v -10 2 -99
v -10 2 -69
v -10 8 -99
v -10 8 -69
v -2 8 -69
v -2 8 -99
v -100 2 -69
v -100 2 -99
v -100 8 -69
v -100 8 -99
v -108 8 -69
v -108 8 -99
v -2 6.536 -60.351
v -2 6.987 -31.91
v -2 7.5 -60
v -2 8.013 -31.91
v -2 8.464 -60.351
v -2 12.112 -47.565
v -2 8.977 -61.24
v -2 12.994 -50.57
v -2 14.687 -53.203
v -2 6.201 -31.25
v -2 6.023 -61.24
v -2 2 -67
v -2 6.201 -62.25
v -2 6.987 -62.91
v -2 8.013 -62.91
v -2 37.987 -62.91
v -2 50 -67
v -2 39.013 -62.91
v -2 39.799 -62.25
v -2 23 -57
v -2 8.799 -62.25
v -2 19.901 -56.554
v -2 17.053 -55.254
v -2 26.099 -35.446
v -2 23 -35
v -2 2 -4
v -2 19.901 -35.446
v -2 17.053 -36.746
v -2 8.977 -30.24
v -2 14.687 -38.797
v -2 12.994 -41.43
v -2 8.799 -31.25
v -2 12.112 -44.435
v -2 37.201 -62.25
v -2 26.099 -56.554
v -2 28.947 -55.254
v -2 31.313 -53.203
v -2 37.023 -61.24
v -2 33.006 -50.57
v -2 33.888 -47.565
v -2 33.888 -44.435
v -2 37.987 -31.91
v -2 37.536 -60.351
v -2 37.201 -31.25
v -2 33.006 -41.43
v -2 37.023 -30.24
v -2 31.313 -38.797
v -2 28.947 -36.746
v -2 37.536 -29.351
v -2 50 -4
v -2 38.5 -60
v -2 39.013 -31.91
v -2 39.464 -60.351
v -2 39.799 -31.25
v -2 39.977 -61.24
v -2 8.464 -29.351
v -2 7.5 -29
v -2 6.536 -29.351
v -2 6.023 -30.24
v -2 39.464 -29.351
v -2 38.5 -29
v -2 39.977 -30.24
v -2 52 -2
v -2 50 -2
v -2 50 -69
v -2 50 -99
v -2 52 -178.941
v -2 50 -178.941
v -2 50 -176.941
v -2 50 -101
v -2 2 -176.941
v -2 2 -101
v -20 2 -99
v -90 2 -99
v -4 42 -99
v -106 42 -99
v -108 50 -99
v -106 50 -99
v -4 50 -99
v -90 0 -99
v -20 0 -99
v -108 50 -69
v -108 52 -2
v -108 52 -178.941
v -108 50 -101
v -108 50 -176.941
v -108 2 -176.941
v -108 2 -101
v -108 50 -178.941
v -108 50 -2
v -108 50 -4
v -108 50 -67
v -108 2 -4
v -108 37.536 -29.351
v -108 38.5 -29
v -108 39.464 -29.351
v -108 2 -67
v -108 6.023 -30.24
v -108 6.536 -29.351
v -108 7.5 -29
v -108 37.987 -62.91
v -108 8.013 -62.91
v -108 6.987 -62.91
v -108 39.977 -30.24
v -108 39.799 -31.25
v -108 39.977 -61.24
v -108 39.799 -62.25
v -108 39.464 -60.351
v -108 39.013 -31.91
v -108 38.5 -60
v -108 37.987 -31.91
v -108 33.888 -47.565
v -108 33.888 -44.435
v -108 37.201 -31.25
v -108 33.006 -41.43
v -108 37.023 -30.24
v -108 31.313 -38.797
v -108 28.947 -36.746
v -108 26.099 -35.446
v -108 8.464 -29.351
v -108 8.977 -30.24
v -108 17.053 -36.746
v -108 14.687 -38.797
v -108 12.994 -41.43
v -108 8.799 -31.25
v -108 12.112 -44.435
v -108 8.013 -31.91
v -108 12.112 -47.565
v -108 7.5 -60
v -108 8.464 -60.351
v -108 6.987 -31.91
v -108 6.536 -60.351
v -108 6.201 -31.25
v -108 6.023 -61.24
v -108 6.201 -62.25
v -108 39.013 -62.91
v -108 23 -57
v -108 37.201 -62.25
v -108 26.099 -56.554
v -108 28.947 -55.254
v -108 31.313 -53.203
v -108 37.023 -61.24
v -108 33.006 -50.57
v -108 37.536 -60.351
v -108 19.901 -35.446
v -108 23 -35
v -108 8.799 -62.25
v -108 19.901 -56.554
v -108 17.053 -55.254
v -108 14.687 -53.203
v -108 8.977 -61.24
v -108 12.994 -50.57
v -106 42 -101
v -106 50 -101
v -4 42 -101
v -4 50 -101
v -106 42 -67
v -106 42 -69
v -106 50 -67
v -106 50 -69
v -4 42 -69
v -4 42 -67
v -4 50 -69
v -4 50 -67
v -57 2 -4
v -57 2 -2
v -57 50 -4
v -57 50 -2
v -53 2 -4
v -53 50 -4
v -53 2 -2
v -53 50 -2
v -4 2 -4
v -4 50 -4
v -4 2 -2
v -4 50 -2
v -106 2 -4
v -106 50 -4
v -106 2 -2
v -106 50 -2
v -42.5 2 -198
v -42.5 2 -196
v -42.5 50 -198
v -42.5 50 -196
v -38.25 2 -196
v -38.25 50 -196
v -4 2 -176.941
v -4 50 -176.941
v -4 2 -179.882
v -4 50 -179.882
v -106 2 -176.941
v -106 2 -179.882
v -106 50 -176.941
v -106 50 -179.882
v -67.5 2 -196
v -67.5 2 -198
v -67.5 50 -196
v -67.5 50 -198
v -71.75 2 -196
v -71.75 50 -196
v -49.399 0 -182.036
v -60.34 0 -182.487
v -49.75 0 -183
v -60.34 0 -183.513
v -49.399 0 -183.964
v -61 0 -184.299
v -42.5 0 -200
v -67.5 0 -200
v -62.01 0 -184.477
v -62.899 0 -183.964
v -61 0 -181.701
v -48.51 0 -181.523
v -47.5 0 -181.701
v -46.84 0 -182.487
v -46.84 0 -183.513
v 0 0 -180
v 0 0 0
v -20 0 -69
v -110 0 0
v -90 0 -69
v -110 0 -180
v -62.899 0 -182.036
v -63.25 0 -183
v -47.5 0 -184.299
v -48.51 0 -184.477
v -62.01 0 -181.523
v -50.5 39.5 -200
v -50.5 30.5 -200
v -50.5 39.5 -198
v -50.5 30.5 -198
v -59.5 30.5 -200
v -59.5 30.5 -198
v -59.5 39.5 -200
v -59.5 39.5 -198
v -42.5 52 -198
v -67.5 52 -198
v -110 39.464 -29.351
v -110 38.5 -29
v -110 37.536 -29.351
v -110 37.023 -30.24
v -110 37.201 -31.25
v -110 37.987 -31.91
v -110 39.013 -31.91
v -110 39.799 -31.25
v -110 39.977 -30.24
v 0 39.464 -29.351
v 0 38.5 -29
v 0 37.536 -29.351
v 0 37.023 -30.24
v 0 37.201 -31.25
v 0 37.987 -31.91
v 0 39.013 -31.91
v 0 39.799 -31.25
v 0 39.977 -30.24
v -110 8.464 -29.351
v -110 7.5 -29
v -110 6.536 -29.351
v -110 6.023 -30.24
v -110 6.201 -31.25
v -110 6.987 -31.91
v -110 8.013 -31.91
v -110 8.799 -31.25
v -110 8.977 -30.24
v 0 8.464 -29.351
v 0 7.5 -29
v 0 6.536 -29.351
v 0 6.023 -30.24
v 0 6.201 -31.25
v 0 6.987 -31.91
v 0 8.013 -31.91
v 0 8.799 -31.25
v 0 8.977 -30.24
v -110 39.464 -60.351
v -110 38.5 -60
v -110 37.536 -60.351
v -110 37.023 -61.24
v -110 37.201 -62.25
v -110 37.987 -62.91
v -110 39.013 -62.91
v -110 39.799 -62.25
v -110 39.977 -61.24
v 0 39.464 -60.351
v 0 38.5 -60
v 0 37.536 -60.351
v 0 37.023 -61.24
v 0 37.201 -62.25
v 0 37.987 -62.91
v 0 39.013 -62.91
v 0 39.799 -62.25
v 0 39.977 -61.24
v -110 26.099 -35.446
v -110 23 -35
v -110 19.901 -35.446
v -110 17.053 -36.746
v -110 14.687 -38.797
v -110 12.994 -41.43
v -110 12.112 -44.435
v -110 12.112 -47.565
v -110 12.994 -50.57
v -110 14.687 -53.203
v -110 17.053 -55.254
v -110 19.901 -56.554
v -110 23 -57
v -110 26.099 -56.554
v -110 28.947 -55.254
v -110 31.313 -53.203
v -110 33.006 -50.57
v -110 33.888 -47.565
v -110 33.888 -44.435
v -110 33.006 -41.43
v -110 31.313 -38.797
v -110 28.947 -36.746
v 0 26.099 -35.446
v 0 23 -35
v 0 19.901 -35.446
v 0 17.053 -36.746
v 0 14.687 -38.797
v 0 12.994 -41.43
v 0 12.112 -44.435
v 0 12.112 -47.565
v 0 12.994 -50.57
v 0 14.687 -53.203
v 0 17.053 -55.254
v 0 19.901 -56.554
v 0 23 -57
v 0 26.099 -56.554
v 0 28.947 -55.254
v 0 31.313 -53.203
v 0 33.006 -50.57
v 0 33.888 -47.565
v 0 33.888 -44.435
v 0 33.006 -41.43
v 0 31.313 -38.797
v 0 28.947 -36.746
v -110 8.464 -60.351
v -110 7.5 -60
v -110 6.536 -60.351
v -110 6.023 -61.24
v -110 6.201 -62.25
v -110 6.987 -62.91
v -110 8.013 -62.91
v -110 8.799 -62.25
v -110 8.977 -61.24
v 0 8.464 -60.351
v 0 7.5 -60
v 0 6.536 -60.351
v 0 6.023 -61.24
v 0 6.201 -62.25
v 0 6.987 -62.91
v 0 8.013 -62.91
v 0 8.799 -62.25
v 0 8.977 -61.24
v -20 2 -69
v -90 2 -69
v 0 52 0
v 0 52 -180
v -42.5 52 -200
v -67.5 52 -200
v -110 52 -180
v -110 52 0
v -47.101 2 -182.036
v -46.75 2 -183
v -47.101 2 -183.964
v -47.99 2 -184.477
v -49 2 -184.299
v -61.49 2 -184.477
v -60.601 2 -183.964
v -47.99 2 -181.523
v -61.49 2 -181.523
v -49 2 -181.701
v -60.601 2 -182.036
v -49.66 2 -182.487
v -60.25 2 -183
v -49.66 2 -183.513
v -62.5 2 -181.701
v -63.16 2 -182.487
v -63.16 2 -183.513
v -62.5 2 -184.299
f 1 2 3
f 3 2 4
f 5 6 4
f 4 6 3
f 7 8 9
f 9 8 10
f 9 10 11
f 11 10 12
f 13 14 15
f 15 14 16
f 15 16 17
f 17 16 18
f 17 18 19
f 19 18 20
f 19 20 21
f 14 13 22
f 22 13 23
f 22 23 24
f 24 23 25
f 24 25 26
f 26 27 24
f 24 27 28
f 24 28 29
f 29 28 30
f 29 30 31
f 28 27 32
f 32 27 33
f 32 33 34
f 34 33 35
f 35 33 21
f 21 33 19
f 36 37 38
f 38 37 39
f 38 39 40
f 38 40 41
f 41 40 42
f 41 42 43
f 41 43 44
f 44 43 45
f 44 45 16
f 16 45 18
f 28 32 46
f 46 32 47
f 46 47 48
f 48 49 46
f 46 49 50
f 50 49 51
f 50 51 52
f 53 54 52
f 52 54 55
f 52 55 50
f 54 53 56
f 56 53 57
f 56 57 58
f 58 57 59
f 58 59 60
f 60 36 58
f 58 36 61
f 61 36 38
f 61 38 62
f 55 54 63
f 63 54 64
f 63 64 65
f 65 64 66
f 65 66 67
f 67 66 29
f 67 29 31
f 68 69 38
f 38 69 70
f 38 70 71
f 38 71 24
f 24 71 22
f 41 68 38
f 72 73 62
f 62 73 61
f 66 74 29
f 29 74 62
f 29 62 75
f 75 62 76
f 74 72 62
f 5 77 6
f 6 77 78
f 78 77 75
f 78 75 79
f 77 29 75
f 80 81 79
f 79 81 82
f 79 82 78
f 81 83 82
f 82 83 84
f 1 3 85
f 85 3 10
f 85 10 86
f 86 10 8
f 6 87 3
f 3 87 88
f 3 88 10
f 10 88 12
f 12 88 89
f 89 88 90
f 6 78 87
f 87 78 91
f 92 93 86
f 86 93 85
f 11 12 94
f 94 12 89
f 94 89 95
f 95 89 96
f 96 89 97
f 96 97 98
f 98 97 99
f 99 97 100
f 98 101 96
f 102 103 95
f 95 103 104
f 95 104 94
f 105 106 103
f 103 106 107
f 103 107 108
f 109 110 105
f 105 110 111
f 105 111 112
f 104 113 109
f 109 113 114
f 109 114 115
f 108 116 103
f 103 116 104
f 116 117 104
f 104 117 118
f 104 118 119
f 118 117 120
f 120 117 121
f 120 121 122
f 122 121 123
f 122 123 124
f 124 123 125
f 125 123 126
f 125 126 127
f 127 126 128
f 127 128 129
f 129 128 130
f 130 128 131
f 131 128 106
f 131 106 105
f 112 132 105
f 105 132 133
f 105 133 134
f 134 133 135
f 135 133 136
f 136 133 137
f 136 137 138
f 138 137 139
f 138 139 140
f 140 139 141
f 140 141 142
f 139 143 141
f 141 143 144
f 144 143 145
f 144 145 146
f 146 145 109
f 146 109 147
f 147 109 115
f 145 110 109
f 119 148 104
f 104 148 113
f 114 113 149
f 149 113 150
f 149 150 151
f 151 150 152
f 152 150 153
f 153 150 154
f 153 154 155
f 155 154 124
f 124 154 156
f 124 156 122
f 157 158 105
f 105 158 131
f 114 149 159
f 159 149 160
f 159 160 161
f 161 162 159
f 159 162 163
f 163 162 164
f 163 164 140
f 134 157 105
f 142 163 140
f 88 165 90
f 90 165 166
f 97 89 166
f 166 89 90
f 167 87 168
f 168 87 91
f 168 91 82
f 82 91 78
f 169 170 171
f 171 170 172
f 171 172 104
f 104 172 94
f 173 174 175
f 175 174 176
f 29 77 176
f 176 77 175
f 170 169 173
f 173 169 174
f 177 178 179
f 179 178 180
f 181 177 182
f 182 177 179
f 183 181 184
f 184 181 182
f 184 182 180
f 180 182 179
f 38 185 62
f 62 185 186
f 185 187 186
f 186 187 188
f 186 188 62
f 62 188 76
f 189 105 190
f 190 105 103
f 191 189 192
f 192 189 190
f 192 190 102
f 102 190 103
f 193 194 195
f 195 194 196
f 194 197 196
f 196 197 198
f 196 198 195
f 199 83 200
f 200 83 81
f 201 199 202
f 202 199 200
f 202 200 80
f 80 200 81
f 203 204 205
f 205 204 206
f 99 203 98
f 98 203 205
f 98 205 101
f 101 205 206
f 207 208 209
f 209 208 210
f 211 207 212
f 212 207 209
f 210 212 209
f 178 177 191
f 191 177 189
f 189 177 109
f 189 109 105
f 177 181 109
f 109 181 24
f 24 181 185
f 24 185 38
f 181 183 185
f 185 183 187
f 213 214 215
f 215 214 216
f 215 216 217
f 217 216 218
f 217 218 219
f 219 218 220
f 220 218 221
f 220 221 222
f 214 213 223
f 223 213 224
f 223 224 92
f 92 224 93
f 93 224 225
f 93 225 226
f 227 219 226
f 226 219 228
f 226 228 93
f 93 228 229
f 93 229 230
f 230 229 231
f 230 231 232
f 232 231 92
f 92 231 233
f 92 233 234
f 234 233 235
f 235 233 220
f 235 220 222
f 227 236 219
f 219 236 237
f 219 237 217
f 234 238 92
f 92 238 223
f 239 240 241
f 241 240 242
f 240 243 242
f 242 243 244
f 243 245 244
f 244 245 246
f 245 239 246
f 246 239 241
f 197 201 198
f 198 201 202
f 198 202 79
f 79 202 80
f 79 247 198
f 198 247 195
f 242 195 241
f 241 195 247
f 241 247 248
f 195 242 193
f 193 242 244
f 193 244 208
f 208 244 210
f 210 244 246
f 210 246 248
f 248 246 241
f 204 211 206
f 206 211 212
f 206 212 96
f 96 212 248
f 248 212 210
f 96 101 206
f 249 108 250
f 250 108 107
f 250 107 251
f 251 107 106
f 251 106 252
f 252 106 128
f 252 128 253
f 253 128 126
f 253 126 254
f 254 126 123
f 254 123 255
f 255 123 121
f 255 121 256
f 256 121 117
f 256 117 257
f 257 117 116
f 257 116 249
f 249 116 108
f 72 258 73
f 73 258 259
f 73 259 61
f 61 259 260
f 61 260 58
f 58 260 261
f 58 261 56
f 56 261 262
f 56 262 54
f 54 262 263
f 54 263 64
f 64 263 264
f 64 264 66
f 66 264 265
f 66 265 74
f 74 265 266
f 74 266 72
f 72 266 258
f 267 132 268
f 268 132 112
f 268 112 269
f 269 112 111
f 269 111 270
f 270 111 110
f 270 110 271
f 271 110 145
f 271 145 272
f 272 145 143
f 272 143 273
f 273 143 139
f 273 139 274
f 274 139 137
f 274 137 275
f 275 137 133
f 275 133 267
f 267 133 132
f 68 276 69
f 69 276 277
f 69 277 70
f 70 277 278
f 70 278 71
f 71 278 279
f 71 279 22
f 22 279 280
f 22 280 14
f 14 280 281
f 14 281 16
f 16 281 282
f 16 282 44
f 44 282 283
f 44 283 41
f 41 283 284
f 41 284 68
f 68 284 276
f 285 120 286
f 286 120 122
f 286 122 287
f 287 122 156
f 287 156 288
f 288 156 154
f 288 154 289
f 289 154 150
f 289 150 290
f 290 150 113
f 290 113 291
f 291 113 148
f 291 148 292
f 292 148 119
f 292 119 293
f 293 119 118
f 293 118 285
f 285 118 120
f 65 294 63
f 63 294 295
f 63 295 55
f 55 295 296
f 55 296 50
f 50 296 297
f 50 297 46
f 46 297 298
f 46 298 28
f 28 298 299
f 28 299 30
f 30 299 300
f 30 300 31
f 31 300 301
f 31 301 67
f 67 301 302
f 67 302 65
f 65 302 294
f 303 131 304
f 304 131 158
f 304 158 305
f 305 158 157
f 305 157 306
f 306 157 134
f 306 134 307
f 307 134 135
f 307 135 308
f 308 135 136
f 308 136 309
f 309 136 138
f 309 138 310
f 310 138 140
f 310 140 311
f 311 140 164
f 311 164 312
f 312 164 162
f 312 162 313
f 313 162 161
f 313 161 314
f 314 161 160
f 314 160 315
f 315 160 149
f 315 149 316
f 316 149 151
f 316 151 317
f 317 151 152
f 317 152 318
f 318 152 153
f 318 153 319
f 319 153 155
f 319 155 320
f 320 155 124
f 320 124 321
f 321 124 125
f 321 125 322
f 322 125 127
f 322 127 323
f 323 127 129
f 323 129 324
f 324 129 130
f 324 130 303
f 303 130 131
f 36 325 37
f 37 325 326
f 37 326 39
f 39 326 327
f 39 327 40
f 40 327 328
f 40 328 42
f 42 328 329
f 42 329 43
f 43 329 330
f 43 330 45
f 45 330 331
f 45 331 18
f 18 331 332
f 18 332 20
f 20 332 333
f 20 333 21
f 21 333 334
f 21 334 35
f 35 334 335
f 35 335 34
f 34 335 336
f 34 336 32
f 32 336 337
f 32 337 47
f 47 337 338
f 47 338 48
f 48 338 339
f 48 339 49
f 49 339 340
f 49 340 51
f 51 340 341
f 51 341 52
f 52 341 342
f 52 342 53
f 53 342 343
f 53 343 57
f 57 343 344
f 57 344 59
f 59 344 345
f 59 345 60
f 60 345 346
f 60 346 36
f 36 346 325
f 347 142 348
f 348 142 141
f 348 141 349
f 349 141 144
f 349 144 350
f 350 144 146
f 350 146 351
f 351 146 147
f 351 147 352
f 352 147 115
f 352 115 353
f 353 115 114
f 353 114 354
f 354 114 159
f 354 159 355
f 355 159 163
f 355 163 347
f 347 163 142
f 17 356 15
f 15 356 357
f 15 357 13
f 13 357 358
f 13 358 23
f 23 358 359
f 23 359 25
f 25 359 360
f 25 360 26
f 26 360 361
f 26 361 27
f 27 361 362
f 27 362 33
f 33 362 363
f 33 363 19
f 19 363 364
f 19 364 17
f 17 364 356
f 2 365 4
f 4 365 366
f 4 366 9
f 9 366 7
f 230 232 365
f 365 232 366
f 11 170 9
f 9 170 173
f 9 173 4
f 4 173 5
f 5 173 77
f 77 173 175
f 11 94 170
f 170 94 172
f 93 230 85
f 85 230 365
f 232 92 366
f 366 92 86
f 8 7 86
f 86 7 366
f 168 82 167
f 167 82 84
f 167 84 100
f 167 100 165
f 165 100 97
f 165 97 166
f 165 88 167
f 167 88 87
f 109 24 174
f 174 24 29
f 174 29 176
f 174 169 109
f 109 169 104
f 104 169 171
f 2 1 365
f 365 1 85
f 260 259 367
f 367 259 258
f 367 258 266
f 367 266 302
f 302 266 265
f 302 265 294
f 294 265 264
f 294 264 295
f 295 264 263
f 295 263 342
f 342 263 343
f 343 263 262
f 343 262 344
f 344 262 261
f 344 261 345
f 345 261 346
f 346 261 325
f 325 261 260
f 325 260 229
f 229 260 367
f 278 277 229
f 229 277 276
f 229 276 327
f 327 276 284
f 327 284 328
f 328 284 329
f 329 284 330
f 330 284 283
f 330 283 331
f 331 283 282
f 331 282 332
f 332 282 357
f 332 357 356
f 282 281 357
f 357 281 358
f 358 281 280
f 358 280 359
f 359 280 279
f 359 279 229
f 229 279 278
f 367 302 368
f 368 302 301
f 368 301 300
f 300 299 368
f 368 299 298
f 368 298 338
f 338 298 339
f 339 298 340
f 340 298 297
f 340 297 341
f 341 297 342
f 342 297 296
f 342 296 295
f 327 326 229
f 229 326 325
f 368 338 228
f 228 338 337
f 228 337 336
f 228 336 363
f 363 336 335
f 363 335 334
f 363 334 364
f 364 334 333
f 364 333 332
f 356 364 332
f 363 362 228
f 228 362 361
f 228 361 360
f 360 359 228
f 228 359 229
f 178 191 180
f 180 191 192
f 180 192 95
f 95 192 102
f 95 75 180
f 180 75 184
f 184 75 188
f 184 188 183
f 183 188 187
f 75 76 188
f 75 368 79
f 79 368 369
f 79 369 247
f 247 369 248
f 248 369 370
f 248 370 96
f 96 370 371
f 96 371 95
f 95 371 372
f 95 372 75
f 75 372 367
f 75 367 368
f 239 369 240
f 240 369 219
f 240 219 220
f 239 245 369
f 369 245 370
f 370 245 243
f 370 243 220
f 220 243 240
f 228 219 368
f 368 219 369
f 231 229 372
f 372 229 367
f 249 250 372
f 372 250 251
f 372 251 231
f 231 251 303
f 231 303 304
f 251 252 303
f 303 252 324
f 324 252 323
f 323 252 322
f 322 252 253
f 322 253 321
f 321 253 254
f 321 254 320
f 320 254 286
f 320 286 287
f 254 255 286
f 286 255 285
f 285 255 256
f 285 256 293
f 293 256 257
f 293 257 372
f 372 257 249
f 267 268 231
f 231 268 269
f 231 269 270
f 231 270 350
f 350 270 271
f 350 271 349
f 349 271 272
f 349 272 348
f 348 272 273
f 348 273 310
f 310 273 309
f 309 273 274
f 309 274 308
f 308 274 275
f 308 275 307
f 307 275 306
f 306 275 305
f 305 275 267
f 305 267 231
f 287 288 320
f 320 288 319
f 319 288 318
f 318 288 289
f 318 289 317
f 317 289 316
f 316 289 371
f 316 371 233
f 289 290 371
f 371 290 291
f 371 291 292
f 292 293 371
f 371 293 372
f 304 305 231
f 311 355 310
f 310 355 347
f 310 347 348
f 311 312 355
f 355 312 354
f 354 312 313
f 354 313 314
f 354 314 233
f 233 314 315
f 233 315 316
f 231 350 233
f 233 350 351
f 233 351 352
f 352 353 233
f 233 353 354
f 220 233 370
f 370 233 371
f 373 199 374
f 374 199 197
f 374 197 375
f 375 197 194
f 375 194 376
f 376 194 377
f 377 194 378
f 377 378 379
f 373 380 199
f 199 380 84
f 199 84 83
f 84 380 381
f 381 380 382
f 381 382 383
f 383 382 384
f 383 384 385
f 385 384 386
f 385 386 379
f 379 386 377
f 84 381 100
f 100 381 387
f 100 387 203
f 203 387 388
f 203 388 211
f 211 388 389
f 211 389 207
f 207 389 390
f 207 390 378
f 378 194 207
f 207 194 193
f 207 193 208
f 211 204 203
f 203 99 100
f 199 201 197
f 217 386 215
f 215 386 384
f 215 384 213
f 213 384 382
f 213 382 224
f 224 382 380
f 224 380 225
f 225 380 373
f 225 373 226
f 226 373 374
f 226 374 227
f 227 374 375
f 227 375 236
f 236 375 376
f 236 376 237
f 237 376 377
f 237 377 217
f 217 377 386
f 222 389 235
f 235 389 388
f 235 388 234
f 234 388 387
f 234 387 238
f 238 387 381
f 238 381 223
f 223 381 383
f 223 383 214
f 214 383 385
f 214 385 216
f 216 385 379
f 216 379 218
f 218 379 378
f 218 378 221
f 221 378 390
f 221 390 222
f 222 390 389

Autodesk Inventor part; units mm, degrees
ref_plane "YZ Plane" through (0, 0, 0) normal (1, 0, 0) x (0, 1, 0)
ref_plane "XZ Plane" through (0, 0, 0) normal (0, 1, 0) x (-1, 0, 0)
ref_plane "XY Plane" through (0, 0, 0) normal (0, 0, 1) x (1, 0, 0)
sketch "Sketch1" plane through (0, 0, 0) normal (0, 1, 0) x (-1, 0, 0)
  line L0 (0, 0) -> (110, 0)
  line L1 (110, 0) -> (110, -180)
  line L2 (0, -180) -> (0, 0)
  line L3 (67.5, -200) -> (42.5, -200)
  line L4 (67.5, -200) -> (110, -180)
  line L5 (42.5, -200) -> (0, -180)
  dimension "d2" = 180
  dimension "d38" = 25
extrude "Extrusion1" add sketch "Sketch1" along normal blind 2
sketch "Sketch2" plane through (0, 2, 0) normal (0, 1, 0) x (1, 0, 0)
  line L0 (0, 180) -> (-110, 180) projected
  line L1 (-110, 180) -> (-110, 0) projected
  line L2 (0, 180) -> (-110, 180)
  line L3 (-110, 180) -> (-110, 0)
  line L4 (-110, 0) -> (0, 0)
  line L5 (0, 0) -> (0, 180)
  line L6 (0, 0) -> (0, 180) projected
  line L7 (-110, 0) -> (0, 0) projected
  line L8 (-2, 2) -> (-108, 2)
  line L9 (-108, 2) -> (-108, 178)
  line L10 (-108, 178) -> (-2, 178)
  line L11 (-2, 178) -> (-2, 2)
extrude "Extrusion2" add sketch "Sketch2" along normal blind 50
sketch "Sketch3" plane through (-108, 2, -2) normal (1, 0, 0) x (0, 0, -1)
  line L0 (0, 50) -> (176, 50) projected
  line L1 (65, 40) -> (65, 0)
  line L2 (176, 0) -> (0, 0) projected
  line L3 (67, 40) -> (67, 0)
  line L4 (67, 0) -> (65, 0)
  line L5 (97, 40) -> (97, 0)
  line L6 (97, 0) -> (99, 0)
  line L7 (99, 0) -> (99, 40)
  line L8 (65, 40) -> (67, 40)
  line L9 (99, 40) -> (97, 40)
  point P0 (-2, -2)
  point P1 (67, 0)
extrude "Extrusion3" add sketch "Sketch3" along normal up to next
sketch "Sketch4" plane through (0, 2, 0) normal (0, 1, 0) x (1, 0, 0)
  line L0 (-108, 69) -> (-2, 69) projected
  line L1 (-90, 69) -> (-90, 99)
  line L2 (-108, 99) -> (-2, 99) projected
  line L3 (-2, 69) -> (-2, 99) projected
  line L4 (-20, 69) -> (-20, 99)
  line L5 (-20, 99) -> (-90, 99)
  line L6 (-90, 69) -> (-20, 69)
  point P0 (0, 0)
extrude "Extrusion4" cut sketch "Sketch4" against normal up to next contours L1 L2 L4 L0
sketch "Sketch5" plane through (-108, 2, -178) normal (1, 0, 0) x (0, 0, -1)
  line L0 (-111, 0) -> (-111, 40) projected
  line L1 (-111, 0) -> (-176, 0) projected
  circle A0 centre (-132, 21) radius 11
  circle A1 centre (-147.5, 36.5) radius 1.5
  circle A2 centre (-116.5, 36.5) radius 1.5
  circle A3 centre (-147.5, 36.5) radius 1.5
  circle A4 centre (-147.5, 5.5) radius 1.5
  circle A5 centre (-116.5, 5.5) radius 1.5
  point P0 (-178, -2)
extrude "Extrusion5" cut sketch "Sketch5" along normal through all both and the other way through all
sketch "Sketch6" plane through (-108, 2, -178) normal (0, 0, 1) x (1, 0, 0)
  line L0 (106, 0) -> (106, 50) projected
  line L1 (106, 50) -> (0, 50)
  line L2 (0, 50) -> (0, 0)
  line L3 (0, 0) -> (106, 0)
  line L4 (106, 0) -> (106, 50)
  point P0 (108, -2)
extrude "Extrusion6" cut sketch "Sketch6" against normal up to next
sketch "Sketch7" plane through (0, 2, 0) normal (0, 1, 0) x (1, 0, 0)
  line L0 (-67.5, 200) -> (-110, 180) projected
  line L1 (-110, 180) -> (-67.5, 200)
  line L2 (-67.5, 200) -> (-42.5, 200)
  line L3 (0, 180) -> (-42.5, 200) projected
  line L4 (-42.5, 200) -> (0, 180)
  line L5 (-67.5, 198) -> (-42.5, 198)
  line L6 (-99.9511, 182.7289) -> (-67.5, 198)
  line L7 (-99.9511, 182.7289) -> (-108, 178.9412)
  line L8 (-108, 180) -> (-108, 101) projected
  line L9 (-108, 180) -> (-110, 180)
  line L10 (-21.25, 188) -> (-42.5, 198)
  line L11 (-21.25, 188) -> (-2, 178.9412)
  line L12 (-2, 101) -> (-2, 180) projected
  line L13 (-2, 180) -> (0, 180)
  line L14 (0, 180) -> (-42.5, 200)
  line L15 (-42.5, 200) -> (-67.5, 200) projected
  line L16 (-42.5, 200) -> (-67.5, 200)
  line L17 (-110, 180) -> (-110, 0) projected
  line L18 (-67.5, 200) -> (-110, 180)
  point P0 (0, 0)
extrude "Extrusion7" add sketch "Sketch7" along normal up to surface (50 mm away)
sketch "Sketch8" plane through (-42.5, 0, -200) normal (0, 0, -1) x (-1, 0, 0)
  line L0 (0, 0) -> (25, 0) projected
  line L1 (8, 39.5) -> (17, 39.5)
  line L2 (17, 39.5) -> (17, 30.5)
  line L3 (17, 30.5) -> (8, 30.5)
  line L4 (8, 30.5) -> (8, 39.5)
  line L5 (8, 39.5) -> (17, 30.5) construction
  line L6 (17, 39.5) -> (8, 30.5) construction
  point P0 (-42.5, 0)
  dimension "d48" = 9
  dimension "d49" = 9
extrude "Extrusion8" cut sketch "Sketch8" against normal blind 2
sketch "Sketch9" plane through (0, 2, 0) normal (0, 1, 0) x (1, 0, 0)
  line L0 (-108, 2) -> (-108, 178.9412) projected
  line L1 (-108, 2) -> (-106, 2)
  line L2 (-106, 2) -> (-106, 4)
  line L3 (-106, 4) -> (-108, 4)
  line L4 (-108, 4) -> (-108, 2)
  line L5 (-2, 2) -> (-108, 2) projected
  line L6 (-2, 2) -> (-4, 2)
  line L7 (-4, 2) -> (-4, 4)
  line L8 (-4, 4) -> (-2, 4)
  line L9 (-2, 4) -> (-2, 2)
  line L10 (-67.5, 198) -> (-108, 178.9412) projected
  line L11 (-106, 178.9412) -> (-106, 176.9412)
  line L12 (-106, 176.9412) -> (-108, 176.9412)
  line L13 (-108, 176.9412) -> (-108, 178.9412)
  line L14 (-106, 178.9412) -> (-106, 179.8824)
  line L15 (-108, 178.9412) -> (-108, 101) projected
  line L16 (-108, 178.9412) -> (-106, 179.8824)
  line L17 (-2, 178.9412) -> (-2, 2) projected
  line L18 (-4, 178.9412) -> (-4, 176.9412)
  line L19 (-4, 176.9412) -> (-2, 176.9412)
  line L20 (-2, 176.9412) -> (-2, 178.9412)
  line L21 (-4, 178.9412) -> (-4, 179.8824)
  line L22 (-2, 178.9412) -> (-42.5, 198) projected
  line L23 (-4, 179.8824) -> (-2, 178.9412)
  line L24 (-4, 179.8824) -> (-2, 178.9412)
  line L25 (-67.5, 198) -> (-108, 178.9412) projected
  line L26 (-67.5, 198) -> (-67.5, 196)
  line L27 (-67.5, 196) -> (-71.75, 196)
  line L28 (-42.5, 198) -> (-67.5, 198) projected
  line L29 (-42.5, 198) -> (-42.5, 196)
  line L30 (-42.5, 196) -> (-38.25, 196)
  line L31 (-42.5, 198) -> (-38.25, 196)
  line L32 (-71.75, 196) -> (-67.5, 198)
  line L33 (-55, 2) -> (-53, 2)
  line L34 (-53, 2) -> (-53, 4)
  line L35 (-53, 4) -> (-57, 4)
  line L36 (-57, 4) -> (-57, 2)
  line L37 (-57, 2) -> (-55, 2)
  point P0 (0, 0)
extrude "Extrusion9" add sketch "Sketch9" along normal blind 48 contours L0 L3 L2 L1 | L36 L35 L34 L5 | L0 L10 L14 L11 L12 | L7 L8 L9 L5 | L10 L26 L27 | L22 L30 L29 | L19 L18 L21 L22 L17
sketch "Sketch10" plane through (-108, 42, -101) normal (0, 1, 0) x (1, 0, 0)
  line L0 (0, 0) -> (106, 0) projected
  line L1 (0, -2) -> (106, -2) projected
  line L2 (106, 0) -> (104, 0)
  line L3 (104, 0) -> (104, -2)
  line L4 (104, -2) -> (106, -2)
  line L5 (106, -2) -> (106, 0)
  line L6 (106, -32) -> (106, -34) projected
  line L7 (106, -32) -> (104, -32)
  line L8 (104, -32) -> (104, -34)
  line L9 (104, -34) -> (106, -34)
  line L10 (106, -34) -> (106, -32)
  line L11 (106, -34) -> (0, -34) projected
  line L12 (0, -32) -> (18, -32) projected
  line L13 (0, -34) -> (2, -34)
  line L14 (2, -34) -> (2, -32)
  line L15 (2, -32) -> (0, -32)
  line L16 (0, -32) -> (0, -34)
  line L17 (0, -2) -> (0, 0) projected
  line L18 (0, 0) -> (2, 0)
  line L19 (2, 0) -> (2, -2)
  line L20 (2, -2) -> (0, -2)
  line L21 (0, -2) -> (0, 0)
  point P0 (108, -101)
  point P1 (2, -34)
  point P2 (2, -2)
  point P3 (2, 0)
extrude "Extrusion10" add sketch "Sketch10" along normal blind 8 contours L0 L19 L1 L17 | L0 L5 L1 L3 | L11 L16 L12 L14 | L6 L9 L8 L7
sketch "Sketch12" plane through (0, 2, 0) normal (0, 1, 0) x (1, 0, 0)
  line L0 (-106, 99) -> (-4, 99) projected
  line L1 (-55, 99) -> (-100, 99)
  line L2 (-100, 99) -> (-100, 69)
  line L3 (-108, 101) -> (-2, 101) projected
  line L4 (-100, 99) -> (-70, 99) construction
  line L5 (-108, 99) -> (-108, 69) projected
  line L6 (-108, 99) -> (-100, 99)
  line L7 (-100, 99) -> (-100, 69)
  line L8 (-100, 69) -> (-108, 69)
  line L9 (-108, 69) -> (-108, 99)
  line L10 (-10, 99) -> (-10, 69)
  line L11 (-2, 99) -> (-2, 69)
  line L12 (-2, 99) -> (-10, 99)
  line L13 (-10, 99) -> (-10, 69)
  line L14 (-10, 69) -> (-2, 69)
  line L15 (-2, 69) -> (-2, 99)
  point P0 (0, 0)
extrude "Extrusion12" add sketch "Sketch12" along normal blind 6
sketch "Sketch13" plane through (0, 2, 0) normal (0, 1, 0) x (1, 0, 0)
  line L0 (-42.5, 198) -> (-67.5, 198) projected
  circle A0 centre (-61.75, 183) radius 1.5
  circle A1 centre (-48.25, 183) radius 1.5
  point P0 (0, 0)
extrude "Extrusion13" cut sketch "Sketch13" against normal through all
properties part number "Robot"
